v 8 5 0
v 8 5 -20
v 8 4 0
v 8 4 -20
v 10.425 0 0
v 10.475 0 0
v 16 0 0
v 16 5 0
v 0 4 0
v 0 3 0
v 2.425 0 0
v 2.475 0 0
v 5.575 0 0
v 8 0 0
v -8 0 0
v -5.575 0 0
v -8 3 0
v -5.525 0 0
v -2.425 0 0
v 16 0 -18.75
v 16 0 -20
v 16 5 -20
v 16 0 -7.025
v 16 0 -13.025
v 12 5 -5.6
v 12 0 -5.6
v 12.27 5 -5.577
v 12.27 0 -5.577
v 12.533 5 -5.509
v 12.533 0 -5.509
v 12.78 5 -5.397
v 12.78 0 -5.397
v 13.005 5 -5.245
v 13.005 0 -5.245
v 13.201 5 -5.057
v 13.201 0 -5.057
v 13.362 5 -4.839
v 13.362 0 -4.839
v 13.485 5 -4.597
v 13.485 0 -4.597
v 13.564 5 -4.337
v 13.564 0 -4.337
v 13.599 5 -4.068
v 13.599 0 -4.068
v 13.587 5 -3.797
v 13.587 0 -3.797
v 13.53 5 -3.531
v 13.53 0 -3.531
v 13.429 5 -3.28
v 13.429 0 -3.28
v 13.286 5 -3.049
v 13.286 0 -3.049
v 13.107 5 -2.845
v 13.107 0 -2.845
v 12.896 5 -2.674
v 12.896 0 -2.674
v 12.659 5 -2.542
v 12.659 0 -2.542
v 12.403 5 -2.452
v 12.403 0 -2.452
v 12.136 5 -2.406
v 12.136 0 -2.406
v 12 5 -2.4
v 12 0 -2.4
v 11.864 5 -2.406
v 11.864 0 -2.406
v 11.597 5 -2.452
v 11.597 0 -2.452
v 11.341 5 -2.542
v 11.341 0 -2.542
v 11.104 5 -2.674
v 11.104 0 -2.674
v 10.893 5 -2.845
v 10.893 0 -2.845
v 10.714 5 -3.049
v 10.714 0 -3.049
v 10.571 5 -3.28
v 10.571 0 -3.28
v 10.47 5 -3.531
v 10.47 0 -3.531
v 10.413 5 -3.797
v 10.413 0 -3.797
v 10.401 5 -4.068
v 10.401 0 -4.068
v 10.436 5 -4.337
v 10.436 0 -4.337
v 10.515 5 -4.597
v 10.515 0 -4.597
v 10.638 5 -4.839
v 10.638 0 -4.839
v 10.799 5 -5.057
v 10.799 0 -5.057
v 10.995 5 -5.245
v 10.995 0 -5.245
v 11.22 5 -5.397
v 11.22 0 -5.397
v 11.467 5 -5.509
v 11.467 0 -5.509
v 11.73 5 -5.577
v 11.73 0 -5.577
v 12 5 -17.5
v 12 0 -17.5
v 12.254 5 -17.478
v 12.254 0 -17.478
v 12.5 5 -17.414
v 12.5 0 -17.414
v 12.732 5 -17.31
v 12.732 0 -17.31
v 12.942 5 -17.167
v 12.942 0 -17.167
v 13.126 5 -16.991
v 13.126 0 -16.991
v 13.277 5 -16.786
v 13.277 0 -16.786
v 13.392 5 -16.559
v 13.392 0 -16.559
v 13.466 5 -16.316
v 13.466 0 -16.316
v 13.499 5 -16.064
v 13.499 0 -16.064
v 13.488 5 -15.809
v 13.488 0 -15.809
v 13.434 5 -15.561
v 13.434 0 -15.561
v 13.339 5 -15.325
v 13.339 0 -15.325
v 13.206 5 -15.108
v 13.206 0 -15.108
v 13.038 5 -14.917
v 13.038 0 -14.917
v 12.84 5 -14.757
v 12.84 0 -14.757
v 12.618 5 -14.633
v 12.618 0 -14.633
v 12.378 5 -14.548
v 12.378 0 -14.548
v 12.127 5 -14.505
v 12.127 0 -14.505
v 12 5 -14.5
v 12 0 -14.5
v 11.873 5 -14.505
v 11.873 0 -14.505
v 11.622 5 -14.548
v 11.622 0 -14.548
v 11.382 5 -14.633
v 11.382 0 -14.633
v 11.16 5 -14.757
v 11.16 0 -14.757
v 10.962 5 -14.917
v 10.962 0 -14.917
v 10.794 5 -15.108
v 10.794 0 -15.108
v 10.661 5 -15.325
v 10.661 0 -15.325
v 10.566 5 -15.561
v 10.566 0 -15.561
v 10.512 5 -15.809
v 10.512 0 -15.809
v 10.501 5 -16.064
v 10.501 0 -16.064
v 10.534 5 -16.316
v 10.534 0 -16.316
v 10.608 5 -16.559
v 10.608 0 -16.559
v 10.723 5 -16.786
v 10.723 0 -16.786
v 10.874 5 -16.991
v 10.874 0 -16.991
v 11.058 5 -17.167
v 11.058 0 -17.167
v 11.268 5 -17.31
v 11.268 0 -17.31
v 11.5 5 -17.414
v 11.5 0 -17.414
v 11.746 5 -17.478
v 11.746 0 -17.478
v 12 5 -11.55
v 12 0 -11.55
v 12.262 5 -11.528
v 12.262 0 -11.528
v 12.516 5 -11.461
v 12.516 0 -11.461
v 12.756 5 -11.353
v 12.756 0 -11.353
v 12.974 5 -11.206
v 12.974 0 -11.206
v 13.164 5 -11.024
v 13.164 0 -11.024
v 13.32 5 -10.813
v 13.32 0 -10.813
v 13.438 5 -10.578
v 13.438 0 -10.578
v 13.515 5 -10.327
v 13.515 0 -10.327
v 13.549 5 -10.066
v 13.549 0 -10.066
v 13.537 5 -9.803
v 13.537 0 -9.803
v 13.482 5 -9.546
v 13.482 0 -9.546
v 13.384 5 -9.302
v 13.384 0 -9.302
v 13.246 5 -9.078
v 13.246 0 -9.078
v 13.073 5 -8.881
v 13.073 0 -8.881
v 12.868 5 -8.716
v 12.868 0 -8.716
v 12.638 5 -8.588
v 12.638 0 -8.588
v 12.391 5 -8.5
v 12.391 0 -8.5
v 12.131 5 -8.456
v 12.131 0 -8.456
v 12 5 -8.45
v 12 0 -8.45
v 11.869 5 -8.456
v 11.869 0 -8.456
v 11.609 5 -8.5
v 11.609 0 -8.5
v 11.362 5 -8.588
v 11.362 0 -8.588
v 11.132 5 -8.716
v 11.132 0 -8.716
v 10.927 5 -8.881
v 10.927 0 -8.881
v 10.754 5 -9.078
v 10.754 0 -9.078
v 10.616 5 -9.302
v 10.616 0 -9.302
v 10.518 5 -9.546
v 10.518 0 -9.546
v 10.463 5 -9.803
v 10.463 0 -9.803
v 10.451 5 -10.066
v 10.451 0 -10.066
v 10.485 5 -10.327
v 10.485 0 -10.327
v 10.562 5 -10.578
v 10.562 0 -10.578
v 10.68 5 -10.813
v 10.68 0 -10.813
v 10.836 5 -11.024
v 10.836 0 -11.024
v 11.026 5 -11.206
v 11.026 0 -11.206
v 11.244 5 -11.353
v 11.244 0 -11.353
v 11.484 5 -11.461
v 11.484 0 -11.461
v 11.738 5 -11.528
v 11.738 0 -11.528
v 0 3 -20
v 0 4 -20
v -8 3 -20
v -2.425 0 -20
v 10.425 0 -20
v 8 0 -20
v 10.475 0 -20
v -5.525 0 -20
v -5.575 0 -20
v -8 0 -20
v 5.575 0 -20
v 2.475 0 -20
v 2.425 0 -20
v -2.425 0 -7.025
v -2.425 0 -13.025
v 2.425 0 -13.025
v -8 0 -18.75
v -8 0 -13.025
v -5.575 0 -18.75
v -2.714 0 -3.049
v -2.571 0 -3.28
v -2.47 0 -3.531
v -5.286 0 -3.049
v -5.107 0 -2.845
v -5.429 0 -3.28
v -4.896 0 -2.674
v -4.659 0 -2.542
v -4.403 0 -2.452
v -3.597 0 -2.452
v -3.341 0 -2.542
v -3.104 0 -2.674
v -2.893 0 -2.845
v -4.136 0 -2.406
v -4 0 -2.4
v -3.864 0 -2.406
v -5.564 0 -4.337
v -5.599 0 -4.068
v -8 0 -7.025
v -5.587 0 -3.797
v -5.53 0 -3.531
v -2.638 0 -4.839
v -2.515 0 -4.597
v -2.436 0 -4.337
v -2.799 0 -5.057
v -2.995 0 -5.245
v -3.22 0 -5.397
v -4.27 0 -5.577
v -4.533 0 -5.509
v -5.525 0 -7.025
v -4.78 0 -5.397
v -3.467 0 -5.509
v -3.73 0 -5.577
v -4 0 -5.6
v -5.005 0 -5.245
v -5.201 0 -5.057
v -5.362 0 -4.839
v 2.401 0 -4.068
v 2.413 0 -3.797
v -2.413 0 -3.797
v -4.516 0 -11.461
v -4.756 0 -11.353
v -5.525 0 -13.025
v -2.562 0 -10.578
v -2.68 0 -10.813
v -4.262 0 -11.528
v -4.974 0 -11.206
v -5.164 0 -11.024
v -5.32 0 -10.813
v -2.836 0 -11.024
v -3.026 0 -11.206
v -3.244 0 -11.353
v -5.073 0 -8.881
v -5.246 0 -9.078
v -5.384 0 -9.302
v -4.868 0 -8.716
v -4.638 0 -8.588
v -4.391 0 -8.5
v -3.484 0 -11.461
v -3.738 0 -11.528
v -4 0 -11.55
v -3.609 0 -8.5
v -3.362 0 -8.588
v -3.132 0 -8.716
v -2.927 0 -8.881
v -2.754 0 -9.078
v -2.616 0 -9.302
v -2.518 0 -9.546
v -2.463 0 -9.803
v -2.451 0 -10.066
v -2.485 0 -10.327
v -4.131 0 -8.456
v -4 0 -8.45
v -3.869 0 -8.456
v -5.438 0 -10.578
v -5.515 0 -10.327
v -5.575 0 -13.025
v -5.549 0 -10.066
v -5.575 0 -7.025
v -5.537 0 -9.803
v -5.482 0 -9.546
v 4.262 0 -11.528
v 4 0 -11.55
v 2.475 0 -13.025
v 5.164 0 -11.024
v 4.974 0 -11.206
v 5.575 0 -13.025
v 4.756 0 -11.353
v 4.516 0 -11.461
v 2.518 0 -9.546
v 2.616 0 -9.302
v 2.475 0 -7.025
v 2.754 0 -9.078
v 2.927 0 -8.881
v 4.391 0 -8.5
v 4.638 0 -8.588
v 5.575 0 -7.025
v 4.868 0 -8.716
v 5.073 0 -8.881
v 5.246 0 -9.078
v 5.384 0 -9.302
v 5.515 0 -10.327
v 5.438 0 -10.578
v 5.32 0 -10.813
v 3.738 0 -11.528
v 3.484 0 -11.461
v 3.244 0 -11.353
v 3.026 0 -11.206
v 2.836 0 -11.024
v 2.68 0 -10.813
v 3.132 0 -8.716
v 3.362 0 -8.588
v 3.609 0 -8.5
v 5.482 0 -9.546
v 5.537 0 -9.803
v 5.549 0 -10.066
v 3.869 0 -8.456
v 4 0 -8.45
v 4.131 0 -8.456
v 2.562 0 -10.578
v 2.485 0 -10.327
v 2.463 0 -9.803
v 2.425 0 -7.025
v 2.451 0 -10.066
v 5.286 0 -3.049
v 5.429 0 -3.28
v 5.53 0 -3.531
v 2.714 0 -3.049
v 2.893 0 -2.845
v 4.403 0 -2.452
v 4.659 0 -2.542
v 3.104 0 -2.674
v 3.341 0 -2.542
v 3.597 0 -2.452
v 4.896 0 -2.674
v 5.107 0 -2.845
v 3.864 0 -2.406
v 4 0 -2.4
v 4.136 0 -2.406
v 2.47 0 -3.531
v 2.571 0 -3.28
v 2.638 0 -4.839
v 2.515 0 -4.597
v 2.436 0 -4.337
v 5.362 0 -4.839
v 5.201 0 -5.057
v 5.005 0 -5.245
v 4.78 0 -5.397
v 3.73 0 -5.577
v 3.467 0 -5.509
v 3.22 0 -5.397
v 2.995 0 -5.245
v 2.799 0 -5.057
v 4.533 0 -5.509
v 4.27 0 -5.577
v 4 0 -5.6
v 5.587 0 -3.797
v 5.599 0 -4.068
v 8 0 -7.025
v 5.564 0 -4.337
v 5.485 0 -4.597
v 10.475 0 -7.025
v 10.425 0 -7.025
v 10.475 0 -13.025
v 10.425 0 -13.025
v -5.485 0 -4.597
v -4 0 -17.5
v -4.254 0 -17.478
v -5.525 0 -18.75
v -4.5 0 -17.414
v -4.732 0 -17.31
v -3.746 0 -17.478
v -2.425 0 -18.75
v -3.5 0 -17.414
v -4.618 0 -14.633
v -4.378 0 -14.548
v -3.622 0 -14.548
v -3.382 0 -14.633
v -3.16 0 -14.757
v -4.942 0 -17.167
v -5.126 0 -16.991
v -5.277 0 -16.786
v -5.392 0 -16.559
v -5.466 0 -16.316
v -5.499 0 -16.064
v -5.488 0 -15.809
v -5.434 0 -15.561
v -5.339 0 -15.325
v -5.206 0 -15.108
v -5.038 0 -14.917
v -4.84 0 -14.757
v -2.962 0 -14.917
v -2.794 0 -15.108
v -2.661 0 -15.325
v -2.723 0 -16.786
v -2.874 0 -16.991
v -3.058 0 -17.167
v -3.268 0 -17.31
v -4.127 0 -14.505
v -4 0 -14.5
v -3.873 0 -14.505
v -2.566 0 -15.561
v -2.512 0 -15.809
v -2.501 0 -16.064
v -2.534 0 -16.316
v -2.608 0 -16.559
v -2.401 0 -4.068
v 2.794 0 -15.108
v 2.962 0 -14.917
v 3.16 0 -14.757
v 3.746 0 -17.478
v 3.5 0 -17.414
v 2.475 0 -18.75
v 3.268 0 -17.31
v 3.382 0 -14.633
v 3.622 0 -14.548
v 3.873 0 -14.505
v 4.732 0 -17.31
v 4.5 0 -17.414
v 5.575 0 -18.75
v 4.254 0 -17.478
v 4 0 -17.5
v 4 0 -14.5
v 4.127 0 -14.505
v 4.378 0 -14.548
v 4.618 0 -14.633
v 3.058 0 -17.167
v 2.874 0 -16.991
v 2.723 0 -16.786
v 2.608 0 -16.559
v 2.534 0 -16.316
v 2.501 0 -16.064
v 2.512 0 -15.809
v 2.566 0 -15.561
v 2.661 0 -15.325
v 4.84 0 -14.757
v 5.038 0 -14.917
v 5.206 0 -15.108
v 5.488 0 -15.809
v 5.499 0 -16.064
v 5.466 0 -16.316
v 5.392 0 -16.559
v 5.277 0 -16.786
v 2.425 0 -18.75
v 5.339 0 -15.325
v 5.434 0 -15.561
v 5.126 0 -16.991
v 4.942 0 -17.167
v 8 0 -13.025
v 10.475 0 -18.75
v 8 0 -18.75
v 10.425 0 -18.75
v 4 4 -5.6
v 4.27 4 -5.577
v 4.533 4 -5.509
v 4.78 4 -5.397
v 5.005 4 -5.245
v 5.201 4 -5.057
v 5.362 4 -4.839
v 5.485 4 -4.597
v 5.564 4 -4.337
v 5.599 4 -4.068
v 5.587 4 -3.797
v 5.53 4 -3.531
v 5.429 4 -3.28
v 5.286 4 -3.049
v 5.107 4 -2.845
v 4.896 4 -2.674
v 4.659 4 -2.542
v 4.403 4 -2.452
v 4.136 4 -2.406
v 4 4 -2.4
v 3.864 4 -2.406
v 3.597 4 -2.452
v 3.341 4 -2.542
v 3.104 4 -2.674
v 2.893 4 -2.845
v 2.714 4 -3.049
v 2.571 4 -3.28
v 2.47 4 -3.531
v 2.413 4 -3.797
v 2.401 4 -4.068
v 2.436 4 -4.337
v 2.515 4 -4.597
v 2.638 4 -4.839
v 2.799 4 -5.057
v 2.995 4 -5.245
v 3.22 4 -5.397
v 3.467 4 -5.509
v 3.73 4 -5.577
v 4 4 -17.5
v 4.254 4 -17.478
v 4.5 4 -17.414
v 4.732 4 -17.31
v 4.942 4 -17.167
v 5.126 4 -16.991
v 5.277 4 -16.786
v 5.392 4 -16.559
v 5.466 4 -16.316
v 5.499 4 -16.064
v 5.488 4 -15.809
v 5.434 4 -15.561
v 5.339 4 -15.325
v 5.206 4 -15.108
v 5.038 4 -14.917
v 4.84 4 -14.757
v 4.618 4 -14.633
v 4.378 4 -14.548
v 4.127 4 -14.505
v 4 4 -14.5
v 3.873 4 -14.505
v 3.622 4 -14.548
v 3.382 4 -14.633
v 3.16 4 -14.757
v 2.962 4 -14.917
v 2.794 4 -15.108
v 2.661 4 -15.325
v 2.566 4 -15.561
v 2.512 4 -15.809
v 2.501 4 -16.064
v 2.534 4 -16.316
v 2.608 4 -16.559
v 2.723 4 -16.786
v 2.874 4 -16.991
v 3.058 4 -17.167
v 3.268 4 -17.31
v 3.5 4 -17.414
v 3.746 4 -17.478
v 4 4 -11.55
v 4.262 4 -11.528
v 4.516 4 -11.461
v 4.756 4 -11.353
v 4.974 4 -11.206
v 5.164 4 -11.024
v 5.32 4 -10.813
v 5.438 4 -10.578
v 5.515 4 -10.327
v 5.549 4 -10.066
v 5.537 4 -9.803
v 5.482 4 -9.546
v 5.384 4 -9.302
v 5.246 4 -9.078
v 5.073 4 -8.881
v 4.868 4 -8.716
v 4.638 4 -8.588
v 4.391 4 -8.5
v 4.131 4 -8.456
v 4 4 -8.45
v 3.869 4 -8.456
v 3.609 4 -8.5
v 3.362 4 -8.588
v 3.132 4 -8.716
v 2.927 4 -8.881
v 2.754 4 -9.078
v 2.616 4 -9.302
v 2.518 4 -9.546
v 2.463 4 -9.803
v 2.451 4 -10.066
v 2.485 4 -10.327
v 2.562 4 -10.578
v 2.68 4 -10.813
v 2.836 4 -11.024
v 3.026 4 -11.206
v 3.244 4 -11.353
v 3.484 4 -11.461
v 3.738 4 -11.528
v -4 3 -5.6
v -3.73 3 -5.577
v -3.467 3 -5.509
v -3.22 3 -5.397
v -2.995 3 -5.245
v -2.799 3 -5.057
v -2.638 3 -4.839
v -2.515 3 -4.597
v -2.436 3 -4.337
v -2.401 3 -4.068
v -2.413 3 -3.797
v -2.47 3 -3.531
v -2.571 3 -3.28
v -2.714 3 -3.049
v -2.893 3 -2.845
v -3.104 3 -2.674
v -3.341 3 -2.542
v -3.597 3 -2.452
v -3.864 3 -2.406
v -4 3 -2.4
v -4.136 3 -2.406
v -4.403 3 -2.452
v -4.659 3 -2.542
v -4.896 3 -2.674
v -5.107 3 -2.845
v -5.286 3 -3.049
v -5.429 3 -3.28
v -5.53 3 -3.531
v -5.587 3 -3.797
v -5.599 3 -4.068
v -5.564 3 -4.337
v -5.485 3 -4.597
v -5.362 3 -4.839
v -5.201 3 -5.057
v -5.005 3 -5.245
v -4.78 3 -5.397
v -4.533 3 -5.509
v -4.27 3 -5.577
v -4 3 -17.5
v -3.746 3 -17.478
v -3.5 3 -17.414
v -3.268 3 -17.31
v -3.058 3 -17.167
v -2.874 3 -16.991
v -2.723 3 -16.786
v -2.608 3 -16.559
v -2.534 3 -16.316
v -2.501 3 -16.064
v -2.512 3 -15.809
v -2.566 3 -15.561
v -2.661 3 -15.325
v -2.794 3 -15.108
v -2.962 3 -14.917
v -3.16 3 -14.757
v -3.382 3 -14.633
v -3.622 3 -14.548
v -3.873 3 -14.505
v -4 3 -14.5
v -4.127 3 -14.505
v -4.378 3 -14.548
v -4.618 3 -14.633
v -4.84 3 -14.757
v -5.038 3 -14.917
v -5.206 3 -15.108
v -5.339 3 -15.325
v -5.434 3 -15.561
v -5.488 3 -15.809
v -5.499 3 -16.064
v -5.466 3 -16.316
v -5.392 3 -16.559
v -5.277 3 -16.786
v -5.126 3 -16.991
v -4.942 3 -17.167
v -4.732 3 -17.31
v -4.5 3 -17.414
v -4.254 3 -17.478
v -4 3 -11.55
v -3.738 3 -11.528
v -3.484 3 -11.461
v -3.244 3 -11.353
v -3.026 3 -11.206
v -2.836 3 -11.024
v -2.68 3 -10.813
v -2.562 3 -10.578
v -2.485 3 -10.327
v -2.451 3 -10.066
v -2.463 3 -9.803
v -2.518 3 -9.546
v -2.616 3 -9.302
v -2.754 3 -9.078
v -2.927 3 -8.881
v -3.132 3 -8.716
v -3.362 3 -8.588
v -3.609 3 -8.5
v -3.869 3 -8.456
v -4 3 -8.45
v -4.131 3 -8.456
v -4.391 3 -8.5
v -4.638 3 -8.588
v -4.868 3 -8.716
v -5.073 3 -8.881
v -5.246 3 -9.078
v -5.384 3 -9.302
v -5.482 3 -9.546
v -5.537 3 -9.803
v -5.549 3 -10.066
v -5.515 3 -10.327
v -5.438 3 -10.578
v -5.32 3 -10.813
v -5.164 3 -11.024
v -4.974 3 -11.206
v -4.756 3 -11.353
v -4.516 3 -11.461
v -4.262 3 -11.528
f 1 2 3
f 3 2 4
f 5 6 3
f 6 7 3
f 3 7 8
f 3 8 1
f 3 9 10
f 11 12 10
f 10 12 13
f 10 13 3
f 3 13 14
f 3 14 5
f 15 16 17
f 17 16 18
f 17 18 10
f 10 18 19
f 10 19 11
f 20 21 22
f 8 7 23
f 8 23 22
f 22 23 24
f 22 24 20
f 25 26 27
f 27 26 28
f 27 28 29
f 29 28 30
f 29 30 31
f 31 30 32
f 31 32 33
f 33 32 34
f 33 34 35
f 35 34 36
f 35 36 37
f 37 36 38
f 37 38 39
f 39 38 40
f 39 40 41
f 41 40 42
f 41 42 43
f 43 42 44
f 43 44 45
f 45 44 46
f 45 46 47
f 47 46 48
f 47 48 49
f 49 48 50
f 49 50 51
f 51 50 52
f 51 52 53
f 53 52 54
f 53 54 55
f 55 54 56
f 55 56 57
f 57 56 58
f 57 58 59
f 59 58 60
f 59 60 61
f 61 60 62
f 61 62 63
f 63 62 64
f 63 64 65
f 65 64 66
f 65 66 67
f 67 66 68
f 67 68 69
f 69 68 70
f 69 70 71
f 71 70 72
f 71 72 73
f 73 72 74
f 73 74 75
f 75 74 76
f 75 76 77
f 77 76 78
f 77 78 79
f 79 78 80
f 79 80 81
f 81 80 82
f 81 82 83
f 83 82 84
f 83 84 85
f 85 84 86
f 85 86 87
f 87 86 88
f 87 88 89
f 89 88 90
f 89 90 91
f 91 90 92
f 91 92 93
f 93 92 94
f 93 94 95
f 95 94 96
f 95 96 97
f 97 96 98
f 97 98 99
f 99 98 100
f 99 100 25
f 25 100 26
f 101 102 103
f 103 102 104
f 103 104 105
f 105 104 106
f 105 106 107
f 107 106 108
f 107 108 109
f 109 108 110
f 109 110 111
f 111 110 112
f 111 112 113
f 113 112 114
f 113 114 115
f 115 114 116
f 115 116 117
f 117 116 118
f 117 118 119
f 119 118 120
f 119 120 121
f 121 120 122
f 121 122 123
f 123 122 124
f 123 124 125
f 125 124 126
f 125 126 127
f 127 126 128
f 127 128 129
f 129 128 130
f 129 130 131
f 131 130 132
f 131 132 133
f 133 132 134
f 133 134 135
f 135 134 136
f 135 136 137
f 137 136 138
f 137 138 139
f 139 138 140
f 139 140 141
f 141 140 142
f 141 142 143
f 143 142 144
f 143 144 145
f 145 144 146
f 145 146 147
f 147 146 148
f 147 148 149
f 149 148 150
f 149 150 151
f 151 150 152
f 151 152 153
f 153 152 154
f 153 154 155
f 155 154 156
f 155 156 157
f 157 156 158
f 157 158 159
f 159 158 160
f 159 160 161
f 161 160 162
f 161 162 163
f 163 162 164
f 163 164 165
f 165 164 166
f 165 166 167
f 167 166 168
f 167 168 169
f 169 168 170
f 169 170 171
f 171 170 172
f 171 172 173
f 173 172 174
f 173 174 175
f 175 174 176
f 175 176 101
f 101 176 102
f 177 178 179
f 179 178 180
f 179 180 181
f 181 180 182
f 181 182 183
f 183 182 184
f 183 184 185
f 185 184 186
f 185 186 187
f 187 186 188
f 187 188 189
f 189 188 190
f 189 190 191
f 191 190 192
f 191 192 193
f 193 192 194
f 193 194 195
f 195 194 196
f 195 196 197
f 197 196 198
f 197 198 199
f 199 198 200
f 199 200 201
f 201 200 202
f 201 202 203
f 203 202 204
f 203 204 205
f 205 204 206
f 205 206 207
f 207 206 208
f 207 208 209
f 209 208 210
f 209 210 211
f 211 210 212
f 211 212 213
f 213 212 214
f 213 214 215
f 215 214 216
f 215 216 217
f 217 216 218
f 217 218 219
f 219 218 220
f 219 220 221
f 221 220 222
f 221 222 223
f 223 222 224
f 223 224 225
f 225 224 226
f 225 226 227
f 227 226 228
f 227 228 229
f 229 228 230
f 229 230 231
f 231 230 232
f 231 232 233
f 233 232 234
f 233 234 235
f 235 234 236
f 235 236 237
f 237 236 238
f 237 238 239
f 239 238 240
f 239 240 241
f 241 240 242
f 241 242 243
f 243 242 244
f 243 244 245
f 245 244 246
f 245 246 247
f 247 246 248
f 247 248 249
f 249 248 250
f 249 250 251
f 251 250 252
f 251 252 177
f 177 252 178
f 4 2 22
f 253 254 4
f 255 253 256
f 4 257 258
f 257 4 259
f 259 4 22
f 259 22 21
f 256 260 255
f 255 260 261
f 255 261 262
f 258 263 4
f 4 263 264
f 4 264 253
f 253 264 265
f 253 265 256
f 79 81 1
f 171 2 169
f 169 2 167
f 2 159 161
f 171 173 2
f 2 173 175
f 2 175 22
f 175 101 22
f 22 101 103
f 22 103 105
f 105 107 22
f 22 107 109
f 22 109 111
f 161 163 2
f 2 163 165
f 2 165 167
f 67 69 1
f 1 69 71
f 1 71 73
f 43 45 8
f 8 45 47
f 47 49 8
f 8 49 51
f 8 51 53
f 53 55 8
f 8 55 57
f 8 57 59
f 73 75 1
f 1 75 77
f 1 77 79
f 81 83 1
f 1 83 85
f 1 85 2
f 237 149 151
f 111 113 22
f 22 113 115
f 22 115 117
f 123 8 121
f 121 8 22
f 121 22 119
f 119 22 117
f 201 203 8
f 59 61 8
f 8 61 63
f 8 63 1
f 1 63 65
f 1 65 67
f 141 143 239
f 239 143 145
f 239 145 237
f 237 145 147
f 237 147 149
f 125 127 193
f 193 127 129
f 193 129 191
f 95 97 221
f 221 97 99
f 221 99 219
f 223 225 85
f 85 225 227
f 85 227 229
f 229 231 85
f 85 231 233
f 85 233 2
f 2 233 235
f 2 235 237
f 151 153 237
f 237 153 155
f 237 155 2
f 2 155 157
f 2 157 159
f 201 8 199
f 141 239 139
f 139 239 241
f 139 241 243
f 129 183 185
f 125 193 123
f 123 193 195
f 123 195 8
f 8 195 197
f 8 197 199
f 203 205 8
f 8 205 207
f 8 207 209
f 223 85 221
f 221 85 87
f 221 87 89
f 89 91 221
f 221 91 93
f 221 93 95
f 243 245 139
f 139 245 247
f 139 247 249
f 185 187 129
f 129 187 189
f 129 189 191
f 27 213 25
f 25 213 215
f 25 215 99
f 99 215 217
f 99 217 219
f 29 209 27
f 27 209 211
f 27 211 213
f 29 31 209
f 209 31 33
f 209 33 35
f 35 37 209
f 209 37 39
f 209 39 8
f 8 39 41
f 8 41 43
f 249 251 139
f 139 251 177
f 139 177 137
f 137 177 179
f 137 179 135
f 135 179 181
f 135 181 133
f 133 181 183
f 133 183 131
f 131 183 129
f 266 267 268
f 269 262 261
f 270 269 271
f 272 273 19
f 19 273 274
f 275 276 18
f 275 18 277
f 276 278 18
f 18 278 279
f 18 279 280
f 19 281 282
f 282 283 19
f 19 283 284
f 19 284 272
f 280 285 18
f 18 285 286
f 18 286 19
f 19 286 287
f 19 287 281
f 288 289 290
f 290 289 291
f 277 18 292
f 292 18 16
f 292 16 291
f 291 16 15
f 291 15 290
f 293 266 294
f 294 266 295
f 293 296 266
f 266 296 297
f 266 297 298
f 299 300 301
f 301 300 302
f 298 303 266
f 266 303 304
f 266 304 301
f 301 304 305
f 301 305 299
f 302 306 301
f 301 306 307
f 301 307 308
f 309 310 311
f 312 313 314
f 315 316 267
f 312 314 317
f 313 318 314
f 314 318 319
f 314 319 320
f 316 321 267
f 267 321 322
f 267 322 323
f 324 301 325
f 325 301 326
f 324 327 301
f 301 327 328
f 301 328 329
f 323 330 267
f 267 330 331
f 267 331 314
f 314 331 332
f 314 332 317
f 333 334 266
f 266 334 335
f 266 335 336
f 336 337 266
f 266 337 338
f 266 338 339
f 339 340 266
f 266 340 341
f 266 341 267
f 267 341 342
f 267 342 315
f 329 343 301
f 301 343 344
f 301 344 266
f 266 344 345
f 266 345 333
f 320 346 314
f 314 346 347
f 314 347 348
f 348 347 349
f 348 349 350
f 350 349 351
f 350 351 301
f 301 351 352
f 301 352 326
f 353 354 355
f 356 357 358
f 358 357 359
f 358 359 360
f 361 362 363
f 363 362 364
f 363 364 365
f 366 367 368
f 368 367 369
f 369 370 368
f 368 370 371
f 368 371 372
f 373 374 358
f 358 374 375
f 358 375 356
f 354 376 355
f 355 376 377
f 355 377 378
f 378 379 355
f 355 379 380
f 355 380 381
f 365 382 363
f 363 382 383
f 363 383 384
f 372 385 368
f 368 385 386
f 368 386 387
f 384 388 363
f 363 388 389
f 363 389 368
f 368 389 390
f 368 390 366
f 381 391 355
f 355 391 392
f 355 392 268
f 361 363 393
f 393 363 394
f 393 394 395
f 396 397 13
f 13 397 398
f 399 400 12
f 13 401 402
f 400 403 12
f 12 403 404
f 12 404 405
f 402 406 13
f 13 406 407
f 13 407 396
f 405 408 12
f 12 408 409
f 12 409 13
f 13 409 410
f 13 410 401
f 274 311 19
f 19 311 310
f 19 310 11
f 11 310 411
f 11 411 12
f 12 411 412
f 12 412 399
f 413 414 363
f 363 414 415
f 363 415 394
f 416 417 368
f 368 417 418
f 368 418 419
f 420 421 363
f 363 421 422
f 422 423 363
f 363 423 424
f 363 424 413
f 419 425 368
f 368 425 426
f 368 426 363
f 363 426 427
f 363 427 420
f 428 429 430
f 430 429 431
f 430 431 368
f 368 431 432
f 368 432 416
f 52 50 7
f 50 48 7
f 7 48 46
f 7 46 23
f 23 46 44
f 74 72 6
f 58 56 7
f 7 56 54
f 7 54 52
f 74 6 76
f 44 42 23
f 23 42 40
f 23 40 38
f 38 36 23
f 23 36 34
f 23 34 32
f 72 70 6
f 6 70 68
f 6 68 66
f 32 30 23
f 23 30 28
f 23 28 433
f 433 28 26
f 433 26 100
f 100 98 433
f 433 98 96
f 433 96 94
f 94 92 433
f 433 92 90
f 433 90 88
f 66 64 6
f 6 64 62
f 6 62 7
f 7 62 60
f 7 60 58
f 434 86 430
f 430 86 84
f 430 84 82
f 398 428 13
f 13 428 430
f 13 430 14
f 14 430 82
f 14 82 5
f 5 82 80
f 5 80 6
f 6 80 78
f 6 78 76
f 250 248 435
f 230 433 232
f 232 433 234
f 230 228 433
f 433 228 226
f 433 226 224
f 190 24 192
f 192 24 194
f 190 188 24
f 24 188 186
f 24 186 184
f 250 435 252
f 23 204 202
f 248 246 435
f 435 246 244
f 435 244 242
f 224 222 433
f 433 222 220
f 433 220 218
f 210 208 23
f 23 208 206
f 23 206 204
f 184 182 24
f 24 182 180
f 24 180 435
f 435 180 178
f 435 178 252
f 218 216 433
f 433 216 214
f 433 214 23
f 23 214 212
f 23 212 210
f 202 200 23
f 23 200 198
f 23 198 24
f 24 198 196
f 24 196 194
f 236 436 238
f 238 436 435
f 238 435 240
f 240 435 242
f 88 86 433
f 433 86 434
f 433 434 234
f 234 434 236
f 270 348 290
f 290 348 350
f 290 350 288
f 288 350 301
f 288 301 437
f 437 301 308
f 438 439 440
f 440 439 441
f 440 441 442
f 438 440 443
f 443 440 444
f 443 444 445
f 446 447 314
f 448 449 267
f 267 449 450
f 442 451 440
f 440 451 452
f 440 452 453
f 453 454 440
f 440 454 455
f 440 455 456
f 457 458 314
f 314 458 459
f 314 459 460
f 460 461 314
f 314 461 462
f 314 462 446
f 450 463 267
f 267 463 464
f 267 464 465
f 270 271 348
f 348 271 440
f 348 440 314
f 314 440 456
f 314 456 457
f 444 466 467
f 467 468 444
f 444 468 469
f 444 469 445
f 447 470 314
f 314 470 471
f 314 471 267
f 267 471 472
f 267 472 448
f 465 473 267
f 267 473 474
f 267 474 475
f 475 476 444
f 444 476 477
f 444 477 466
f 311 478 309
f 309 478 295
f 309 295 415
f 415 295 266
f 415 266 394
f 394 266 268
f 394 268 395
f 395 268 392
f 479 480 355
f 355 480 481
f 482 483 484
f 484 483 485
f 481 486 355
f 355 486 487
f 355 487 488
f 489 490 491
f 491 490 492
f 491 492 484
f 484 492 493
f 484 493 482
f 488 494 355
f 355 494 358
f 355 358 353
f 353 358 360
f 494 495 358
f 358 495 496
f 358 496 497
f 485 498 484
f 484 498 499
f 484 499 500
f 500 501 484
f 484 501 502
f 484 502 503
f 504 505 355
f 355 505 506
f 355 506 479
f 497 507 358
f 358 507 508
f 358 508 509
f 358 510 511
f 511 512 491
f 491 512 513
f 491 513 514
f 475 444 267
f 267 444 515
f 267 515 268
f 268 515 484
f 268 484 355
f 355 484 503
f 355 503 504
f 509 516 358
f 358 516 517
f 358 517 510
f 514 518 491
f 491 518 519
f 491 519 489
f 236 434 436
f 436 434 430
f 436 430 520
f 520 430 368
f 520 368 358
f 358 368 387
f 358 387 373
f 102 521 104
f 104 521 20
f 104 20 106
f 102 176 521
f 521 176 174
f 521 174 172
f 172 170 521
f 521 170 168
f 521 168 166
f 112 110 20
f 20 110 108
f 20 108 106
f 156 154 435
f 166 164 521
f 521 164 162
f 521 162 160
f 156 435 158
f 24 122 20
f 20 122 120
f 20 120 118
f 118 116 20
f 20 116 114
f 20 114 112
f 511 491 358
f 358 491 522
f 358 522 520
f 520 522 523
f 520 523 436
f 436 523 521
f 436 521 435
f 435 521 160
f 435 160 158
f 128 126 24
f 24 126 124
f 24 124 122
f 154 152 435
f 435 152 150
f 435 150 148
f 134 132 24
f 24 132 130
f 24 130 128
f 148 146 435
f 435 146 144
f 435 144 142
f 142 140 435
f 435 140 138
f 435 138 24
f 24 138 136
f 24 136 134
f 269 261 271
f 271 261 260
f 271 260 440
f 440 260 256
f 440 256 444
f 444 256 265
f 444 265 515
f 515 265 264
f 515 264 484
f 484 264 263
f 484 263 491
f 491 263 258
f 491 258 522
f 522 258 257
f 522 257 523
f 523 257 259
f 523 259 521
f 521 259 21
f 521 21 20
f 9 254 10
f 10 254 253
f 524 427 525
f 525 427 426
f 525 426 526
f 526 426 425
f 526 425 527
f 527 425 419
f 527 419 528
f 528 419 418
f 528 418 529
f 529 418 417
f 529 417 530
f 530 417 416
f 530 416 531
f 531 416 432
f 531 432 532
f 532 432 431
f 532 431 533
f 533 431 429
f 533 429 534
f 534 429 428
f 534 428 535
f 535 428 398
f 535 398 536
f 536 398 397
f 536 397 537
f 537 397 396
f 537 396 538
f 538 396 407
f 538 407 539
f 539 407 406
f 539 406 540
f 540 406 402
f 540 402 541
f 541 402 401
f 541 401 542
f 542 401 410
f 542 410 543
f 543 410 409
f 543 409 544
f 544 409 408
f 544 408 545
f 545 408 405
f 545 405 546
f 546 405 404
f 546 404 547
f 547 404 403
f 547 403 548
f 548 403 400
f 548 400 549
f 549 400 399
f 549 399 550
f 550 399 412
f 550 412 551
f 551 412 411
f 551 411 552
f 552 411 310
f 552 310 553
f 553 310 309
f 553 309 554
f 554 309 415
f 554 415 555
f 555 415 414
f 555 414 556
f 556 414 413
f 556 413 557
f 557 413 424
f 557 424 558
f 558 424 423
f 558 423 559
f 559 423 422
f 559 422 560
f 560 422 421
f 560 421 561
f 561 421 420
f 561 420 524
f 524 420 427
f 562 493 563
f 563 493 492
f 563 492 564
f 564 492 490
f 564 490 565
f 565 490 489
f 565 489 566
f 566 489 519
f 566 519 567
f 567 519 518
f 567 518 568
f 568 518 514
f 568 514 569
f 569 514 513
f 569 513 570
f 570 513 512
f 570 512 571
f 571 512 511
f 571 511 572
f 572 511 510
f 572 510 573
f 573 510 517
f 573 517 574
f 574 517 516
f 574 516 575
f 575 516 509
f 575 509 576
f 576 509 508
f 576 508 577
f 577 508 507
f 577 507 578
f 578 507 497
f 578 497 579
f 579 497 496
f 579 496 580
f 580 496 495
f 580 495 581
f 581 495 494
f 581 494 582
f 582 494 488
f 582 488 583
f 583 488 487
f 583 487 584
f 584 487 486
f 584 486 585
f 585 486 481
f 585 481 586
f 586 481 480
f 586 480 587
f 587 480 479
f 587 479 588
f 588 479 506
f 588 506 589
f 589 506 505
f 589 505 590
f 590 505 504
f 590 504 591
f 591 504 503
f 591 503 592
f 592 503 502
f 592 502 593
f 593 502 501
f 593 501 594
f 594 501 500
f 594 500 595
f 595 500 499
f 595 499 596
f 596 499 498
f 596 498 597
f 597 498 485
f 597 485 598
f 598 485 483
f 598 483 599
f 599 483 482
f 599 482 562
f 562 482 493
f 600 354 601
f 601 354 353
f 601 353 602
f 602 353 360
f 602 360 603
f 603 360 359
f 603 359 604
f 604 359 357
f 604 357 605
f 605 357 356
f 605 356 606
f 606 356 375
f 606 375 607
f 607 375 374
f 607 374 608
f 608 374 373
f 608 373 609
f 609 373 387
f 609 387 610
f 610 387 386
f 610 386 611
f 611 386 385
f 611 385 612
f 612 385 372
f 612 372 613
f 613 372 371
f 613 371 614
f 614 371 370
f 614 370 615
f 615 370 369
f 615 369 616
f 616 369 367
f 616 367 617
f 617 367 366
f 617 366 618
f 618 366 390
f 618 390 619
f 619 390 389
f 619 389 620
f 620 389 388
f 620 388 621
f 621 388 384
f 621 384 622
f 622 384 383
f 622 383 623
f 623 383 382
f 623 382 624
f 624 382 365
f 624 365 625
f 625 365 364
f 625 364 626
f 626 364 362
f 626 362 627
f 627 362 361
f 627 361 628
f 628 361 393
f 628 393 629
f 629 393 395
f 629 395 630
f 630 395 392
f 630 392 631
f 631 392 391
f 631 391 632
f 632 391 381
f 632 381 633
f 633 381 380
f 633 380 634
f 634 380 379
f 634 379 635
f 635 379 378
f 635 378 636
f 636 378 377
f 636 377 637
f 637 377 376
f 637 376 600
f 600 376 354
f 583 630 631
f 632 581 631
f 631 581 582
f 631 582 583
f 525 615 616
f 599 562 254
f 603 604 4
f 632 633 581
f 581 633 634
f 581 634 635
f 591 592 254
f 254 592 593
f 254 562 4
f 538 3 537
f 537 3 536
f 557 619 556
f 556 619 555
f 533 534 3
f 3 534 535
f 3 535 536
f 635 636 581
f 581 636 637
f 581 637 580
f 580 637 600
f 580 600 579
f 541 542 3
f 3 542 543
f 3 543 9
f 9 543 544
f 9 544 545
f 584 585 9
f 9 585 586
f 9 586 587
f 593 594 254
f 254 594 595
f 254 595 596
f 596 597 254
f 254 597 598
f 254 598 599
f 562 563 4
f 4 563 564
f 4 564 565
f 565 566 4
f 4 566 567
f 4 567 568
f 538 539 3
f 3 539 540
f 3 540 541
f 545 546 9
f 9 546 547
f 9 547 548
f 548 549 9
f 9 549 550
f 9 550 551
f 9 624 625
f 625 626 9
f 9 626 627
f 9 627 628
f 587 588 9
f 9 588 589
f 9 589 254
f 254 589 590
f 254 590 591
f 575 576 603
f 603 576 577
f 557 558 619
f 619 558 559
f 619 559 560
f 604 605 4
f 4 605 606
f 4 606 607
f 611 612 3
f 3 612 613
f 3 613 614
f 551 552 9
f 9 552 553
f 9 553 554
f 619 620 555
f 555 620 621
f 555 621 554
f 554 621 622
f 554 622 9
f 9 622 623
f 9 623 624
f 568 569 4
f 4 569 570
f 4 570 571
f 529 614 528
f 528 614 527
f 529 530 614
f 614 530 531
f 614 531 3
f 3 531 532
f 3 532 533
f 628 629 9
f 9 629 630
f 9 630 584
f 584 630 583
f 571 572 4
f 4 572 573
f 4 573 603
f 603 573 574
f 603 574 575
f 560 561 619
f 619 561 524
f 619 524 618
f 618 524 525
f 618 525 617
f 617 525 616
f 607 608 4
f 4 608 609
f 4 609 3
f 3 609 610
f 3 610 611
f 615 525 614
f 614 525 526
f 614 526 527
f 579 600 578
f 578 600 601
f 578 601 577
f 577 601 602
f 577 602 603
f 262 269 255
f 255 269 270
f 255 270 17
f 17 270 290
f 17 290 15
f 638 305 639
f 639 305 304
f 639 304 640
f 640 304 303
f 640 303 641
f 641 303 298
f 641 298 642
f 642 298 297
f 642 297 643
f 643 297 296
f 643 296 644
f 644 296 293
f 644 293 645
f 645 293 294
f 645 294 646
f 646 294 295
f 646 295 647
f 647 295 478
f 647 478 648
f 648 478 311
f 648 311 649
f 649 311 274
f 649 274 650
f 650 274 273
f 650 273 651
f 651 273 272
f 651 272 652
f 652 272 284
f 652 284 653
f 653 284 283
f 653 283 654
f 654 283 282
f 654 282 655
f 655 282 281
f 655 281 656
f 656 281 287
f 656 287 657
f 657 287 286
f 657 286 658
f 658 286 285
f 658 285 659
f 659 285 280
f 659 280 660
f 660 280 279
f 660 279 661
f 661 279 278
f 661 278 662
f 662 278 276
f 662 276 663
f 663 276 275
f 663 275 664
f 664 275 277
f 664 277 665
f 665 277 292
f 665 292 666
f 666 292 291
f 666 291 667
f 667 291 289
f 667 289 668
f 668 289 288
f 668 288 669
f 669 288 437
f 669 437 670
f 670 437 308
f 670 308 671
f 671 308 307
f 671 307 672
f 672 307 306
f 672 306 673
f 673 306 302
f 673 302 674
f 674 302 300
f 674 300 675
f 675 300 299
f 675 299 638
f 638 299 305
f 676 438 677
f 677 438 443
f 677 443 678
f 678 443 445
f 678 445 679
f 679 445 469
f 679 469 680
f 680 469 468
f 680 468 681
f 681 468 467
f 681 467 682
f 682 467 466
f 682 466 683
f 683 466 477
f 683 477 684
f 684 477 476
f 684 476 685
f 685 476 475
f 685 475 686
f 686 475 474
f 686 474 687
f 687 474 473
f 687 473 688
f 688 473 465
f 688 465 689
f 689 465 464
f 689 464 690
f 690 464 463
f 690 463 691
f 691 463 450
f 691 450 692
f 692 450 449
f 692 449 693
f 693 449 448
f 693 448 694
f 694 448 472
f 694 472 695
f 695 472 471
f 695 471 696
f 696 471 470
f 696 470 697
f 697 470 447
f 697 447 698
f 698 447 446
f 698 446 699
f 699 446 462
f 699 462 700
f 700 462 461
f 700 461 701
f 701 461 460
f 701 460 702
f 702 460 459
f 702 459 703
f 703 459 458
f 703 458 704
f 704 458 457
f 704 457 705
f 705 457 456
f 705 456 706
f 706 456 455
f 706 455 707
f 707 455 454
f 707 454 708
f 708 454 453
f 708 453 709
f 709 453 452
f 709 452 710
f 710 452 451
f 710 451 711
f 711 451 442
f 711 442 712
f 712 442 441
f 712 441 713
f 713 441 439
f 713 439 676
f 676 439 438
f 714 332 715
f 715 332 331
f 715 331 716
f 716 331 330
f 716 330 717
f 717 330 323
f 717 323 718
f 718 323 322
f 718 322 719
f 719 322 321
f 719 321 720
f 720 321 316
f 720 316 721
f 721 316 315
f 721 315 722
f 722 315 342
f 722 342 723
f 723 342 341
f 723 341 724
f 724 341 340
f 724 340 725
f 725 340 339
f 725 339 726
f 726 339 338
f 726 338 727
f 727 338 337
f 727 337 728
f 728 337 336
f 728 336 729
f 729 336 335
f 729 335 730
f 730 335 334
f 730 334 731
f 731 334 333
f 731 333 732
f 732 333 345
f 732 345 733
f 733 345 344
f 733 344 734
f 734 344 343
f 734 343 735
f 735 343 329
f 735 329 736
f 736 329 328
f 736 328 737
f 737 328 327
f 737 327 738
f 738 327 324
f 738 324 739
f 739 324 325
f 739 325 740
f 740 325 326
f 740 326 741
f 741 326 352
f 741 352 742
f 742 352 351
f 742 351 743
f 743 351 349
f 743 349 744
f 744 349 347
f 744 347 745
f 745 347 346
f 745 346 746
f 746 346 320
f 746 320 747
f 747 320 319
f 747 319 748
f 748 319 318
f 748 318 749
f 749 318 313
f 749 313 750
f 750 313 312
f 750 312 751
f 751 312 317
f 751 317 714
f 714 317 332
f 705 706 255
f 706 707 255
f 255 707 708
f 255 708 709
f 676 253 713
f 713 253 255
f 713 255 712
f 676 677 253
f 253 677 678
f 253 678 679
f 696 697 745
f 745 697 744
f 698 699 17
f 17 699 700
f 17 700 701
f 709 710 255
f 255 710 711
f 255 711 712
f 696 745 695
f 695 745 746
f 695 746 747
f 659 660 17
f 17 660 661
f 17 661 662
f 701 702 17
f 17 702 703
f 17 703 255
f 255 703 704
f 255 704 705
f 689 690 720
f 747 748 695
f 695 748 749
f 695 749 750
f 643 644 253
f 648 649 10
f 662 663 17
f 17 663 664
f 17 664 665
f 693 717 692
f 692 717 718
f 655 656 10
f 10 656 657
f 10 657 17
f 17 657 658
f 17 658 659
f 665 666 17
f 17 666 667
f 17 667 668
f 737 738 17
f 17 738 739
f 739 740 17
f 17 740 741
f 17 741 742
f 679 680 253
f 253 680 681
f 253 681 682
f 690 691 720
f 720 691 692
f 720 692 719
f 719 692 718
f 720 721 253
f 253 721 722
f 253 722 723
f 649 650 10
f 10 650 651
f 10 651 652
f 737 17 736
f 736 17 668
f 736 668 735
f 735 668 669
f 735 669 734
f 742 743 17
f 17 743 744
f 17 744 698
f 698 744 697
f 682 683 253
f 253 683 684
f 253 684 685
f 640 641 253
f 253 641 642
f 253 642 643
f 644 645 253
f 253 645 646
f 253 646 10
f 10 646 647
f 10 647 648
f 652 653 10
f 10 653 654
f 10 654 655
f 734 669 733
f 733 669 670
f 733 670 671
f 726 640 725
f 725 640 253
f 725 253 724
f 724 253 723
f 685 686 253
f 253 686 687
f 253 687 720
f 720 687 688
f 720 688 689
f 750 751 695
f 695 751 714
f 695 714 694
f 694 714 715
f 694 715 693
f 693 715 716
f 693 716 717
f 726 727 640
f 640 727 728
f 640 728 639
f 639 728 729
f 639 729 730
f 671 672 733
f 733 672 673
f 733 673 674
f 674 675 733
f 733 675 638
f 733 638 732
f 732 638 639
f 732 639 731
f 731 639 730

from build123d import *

# Parameters (mm, degrees)
SKETCH1_W           = 8
SKETCH1_H           = 20
SKETCH1_R           = 1.6
SKETCH1_R_2         = 1.55
SKETCH1_R_3         = 1.5
BOSS_EXTRUDE7_DEPTH = 5
SKETCH1_8_W         = 8
SKETCH1_8_H         = 20
SKETCH1_8_R         = 1.6
SKETCH1_8_R_2       = 1.55
SKETCH1_8_R_3       = 1.5
BOSS_EXTRUDE8_DEPTH = 4
SKETCH1_9_W         = 8
SKETCH1_9_H         = 20
SKETCH1_9_R         = 1.6
SKETCH1_9_R_2       = 1.55
SKETCH1_9_R_3       = 1.5
BOSS_EXTRUDE9_DEPTH = 3


with BuildPart() as part:
    # Sketch1 → Boss-Extrude7 (new body)
    with BuildSketch(Plane(origin=(0, 0, 0), x_dir=(1, 0, 0), z_dir=(0, 1, 0))):
        with Locations((12, 10)):
            Rectangle(SKETCH1_W, SKETCH1_H)
        with Locations((12, 4)):
            Circle(SKETCH1_R, mode=Mode.SUBTRACT)
        with Locations((12, 10)):
            Circle(SKETCH1_R_2, mode=Mode.SUBTRACT)
        with Locations((12, 16)):
            Circle(SKETCH1_R_3, mode=Mode.SUBTRACT)
    extrude(amount=BOSS_EXTRUDE7_DEPTH)

    # Sketch1<8> → Boss-Extrude8 (add)
    with BuildSketch(Plane(origin=(0, 0, 0), x_dir=(1, 0, 0), z_dir=(0, 1, 0))):
        with Locations((4, 10)):
            Rectangle(SKETCH1_8_W, SKETCH1_8_H)
        with Locations((4, 4)):
            Circle(SKETCH1_8_R, mode=Mode.SUBTRACT)
        with Locations((4, 10)):
            Circle(SKETCH1_8_R_2, mode=Mode.SUBTRACT)
        with Locations((4, 16)):
            Circle(SKETCH1_8_R_3, mode=Mode.SUBTRACT)
    extrude(amount=BOSS_EXTRUDE8_DEPTH)

    # Sketch1<9> → Boss-Extrude9 (add)
    with BuildSketch(Plane(origin=(0, 0, 0), x_dir=(1, 0, 0), z_dir=(0, 1, 0))):
        with Locations((-4, 10)):
            Rectangle(SKETCH1_9_W, SKETCH1_9_H)
        with Locations((-4, 4)):
            Circle(SKETCH1_9_R, mode=Mode.SUBTRACT)
        with Locations((-4, 10)):
            Circle(SKETCH1_9_R_2, mode=Mode.SUBTRACT)
        with Locations((-4, 16)):
            Circle(SKETCH1_9_R_3, mode=Mode.SUBTRACT)
    extrude(amount=BOSS_EXTRUDE9_DEPTH)


solid = part.part
